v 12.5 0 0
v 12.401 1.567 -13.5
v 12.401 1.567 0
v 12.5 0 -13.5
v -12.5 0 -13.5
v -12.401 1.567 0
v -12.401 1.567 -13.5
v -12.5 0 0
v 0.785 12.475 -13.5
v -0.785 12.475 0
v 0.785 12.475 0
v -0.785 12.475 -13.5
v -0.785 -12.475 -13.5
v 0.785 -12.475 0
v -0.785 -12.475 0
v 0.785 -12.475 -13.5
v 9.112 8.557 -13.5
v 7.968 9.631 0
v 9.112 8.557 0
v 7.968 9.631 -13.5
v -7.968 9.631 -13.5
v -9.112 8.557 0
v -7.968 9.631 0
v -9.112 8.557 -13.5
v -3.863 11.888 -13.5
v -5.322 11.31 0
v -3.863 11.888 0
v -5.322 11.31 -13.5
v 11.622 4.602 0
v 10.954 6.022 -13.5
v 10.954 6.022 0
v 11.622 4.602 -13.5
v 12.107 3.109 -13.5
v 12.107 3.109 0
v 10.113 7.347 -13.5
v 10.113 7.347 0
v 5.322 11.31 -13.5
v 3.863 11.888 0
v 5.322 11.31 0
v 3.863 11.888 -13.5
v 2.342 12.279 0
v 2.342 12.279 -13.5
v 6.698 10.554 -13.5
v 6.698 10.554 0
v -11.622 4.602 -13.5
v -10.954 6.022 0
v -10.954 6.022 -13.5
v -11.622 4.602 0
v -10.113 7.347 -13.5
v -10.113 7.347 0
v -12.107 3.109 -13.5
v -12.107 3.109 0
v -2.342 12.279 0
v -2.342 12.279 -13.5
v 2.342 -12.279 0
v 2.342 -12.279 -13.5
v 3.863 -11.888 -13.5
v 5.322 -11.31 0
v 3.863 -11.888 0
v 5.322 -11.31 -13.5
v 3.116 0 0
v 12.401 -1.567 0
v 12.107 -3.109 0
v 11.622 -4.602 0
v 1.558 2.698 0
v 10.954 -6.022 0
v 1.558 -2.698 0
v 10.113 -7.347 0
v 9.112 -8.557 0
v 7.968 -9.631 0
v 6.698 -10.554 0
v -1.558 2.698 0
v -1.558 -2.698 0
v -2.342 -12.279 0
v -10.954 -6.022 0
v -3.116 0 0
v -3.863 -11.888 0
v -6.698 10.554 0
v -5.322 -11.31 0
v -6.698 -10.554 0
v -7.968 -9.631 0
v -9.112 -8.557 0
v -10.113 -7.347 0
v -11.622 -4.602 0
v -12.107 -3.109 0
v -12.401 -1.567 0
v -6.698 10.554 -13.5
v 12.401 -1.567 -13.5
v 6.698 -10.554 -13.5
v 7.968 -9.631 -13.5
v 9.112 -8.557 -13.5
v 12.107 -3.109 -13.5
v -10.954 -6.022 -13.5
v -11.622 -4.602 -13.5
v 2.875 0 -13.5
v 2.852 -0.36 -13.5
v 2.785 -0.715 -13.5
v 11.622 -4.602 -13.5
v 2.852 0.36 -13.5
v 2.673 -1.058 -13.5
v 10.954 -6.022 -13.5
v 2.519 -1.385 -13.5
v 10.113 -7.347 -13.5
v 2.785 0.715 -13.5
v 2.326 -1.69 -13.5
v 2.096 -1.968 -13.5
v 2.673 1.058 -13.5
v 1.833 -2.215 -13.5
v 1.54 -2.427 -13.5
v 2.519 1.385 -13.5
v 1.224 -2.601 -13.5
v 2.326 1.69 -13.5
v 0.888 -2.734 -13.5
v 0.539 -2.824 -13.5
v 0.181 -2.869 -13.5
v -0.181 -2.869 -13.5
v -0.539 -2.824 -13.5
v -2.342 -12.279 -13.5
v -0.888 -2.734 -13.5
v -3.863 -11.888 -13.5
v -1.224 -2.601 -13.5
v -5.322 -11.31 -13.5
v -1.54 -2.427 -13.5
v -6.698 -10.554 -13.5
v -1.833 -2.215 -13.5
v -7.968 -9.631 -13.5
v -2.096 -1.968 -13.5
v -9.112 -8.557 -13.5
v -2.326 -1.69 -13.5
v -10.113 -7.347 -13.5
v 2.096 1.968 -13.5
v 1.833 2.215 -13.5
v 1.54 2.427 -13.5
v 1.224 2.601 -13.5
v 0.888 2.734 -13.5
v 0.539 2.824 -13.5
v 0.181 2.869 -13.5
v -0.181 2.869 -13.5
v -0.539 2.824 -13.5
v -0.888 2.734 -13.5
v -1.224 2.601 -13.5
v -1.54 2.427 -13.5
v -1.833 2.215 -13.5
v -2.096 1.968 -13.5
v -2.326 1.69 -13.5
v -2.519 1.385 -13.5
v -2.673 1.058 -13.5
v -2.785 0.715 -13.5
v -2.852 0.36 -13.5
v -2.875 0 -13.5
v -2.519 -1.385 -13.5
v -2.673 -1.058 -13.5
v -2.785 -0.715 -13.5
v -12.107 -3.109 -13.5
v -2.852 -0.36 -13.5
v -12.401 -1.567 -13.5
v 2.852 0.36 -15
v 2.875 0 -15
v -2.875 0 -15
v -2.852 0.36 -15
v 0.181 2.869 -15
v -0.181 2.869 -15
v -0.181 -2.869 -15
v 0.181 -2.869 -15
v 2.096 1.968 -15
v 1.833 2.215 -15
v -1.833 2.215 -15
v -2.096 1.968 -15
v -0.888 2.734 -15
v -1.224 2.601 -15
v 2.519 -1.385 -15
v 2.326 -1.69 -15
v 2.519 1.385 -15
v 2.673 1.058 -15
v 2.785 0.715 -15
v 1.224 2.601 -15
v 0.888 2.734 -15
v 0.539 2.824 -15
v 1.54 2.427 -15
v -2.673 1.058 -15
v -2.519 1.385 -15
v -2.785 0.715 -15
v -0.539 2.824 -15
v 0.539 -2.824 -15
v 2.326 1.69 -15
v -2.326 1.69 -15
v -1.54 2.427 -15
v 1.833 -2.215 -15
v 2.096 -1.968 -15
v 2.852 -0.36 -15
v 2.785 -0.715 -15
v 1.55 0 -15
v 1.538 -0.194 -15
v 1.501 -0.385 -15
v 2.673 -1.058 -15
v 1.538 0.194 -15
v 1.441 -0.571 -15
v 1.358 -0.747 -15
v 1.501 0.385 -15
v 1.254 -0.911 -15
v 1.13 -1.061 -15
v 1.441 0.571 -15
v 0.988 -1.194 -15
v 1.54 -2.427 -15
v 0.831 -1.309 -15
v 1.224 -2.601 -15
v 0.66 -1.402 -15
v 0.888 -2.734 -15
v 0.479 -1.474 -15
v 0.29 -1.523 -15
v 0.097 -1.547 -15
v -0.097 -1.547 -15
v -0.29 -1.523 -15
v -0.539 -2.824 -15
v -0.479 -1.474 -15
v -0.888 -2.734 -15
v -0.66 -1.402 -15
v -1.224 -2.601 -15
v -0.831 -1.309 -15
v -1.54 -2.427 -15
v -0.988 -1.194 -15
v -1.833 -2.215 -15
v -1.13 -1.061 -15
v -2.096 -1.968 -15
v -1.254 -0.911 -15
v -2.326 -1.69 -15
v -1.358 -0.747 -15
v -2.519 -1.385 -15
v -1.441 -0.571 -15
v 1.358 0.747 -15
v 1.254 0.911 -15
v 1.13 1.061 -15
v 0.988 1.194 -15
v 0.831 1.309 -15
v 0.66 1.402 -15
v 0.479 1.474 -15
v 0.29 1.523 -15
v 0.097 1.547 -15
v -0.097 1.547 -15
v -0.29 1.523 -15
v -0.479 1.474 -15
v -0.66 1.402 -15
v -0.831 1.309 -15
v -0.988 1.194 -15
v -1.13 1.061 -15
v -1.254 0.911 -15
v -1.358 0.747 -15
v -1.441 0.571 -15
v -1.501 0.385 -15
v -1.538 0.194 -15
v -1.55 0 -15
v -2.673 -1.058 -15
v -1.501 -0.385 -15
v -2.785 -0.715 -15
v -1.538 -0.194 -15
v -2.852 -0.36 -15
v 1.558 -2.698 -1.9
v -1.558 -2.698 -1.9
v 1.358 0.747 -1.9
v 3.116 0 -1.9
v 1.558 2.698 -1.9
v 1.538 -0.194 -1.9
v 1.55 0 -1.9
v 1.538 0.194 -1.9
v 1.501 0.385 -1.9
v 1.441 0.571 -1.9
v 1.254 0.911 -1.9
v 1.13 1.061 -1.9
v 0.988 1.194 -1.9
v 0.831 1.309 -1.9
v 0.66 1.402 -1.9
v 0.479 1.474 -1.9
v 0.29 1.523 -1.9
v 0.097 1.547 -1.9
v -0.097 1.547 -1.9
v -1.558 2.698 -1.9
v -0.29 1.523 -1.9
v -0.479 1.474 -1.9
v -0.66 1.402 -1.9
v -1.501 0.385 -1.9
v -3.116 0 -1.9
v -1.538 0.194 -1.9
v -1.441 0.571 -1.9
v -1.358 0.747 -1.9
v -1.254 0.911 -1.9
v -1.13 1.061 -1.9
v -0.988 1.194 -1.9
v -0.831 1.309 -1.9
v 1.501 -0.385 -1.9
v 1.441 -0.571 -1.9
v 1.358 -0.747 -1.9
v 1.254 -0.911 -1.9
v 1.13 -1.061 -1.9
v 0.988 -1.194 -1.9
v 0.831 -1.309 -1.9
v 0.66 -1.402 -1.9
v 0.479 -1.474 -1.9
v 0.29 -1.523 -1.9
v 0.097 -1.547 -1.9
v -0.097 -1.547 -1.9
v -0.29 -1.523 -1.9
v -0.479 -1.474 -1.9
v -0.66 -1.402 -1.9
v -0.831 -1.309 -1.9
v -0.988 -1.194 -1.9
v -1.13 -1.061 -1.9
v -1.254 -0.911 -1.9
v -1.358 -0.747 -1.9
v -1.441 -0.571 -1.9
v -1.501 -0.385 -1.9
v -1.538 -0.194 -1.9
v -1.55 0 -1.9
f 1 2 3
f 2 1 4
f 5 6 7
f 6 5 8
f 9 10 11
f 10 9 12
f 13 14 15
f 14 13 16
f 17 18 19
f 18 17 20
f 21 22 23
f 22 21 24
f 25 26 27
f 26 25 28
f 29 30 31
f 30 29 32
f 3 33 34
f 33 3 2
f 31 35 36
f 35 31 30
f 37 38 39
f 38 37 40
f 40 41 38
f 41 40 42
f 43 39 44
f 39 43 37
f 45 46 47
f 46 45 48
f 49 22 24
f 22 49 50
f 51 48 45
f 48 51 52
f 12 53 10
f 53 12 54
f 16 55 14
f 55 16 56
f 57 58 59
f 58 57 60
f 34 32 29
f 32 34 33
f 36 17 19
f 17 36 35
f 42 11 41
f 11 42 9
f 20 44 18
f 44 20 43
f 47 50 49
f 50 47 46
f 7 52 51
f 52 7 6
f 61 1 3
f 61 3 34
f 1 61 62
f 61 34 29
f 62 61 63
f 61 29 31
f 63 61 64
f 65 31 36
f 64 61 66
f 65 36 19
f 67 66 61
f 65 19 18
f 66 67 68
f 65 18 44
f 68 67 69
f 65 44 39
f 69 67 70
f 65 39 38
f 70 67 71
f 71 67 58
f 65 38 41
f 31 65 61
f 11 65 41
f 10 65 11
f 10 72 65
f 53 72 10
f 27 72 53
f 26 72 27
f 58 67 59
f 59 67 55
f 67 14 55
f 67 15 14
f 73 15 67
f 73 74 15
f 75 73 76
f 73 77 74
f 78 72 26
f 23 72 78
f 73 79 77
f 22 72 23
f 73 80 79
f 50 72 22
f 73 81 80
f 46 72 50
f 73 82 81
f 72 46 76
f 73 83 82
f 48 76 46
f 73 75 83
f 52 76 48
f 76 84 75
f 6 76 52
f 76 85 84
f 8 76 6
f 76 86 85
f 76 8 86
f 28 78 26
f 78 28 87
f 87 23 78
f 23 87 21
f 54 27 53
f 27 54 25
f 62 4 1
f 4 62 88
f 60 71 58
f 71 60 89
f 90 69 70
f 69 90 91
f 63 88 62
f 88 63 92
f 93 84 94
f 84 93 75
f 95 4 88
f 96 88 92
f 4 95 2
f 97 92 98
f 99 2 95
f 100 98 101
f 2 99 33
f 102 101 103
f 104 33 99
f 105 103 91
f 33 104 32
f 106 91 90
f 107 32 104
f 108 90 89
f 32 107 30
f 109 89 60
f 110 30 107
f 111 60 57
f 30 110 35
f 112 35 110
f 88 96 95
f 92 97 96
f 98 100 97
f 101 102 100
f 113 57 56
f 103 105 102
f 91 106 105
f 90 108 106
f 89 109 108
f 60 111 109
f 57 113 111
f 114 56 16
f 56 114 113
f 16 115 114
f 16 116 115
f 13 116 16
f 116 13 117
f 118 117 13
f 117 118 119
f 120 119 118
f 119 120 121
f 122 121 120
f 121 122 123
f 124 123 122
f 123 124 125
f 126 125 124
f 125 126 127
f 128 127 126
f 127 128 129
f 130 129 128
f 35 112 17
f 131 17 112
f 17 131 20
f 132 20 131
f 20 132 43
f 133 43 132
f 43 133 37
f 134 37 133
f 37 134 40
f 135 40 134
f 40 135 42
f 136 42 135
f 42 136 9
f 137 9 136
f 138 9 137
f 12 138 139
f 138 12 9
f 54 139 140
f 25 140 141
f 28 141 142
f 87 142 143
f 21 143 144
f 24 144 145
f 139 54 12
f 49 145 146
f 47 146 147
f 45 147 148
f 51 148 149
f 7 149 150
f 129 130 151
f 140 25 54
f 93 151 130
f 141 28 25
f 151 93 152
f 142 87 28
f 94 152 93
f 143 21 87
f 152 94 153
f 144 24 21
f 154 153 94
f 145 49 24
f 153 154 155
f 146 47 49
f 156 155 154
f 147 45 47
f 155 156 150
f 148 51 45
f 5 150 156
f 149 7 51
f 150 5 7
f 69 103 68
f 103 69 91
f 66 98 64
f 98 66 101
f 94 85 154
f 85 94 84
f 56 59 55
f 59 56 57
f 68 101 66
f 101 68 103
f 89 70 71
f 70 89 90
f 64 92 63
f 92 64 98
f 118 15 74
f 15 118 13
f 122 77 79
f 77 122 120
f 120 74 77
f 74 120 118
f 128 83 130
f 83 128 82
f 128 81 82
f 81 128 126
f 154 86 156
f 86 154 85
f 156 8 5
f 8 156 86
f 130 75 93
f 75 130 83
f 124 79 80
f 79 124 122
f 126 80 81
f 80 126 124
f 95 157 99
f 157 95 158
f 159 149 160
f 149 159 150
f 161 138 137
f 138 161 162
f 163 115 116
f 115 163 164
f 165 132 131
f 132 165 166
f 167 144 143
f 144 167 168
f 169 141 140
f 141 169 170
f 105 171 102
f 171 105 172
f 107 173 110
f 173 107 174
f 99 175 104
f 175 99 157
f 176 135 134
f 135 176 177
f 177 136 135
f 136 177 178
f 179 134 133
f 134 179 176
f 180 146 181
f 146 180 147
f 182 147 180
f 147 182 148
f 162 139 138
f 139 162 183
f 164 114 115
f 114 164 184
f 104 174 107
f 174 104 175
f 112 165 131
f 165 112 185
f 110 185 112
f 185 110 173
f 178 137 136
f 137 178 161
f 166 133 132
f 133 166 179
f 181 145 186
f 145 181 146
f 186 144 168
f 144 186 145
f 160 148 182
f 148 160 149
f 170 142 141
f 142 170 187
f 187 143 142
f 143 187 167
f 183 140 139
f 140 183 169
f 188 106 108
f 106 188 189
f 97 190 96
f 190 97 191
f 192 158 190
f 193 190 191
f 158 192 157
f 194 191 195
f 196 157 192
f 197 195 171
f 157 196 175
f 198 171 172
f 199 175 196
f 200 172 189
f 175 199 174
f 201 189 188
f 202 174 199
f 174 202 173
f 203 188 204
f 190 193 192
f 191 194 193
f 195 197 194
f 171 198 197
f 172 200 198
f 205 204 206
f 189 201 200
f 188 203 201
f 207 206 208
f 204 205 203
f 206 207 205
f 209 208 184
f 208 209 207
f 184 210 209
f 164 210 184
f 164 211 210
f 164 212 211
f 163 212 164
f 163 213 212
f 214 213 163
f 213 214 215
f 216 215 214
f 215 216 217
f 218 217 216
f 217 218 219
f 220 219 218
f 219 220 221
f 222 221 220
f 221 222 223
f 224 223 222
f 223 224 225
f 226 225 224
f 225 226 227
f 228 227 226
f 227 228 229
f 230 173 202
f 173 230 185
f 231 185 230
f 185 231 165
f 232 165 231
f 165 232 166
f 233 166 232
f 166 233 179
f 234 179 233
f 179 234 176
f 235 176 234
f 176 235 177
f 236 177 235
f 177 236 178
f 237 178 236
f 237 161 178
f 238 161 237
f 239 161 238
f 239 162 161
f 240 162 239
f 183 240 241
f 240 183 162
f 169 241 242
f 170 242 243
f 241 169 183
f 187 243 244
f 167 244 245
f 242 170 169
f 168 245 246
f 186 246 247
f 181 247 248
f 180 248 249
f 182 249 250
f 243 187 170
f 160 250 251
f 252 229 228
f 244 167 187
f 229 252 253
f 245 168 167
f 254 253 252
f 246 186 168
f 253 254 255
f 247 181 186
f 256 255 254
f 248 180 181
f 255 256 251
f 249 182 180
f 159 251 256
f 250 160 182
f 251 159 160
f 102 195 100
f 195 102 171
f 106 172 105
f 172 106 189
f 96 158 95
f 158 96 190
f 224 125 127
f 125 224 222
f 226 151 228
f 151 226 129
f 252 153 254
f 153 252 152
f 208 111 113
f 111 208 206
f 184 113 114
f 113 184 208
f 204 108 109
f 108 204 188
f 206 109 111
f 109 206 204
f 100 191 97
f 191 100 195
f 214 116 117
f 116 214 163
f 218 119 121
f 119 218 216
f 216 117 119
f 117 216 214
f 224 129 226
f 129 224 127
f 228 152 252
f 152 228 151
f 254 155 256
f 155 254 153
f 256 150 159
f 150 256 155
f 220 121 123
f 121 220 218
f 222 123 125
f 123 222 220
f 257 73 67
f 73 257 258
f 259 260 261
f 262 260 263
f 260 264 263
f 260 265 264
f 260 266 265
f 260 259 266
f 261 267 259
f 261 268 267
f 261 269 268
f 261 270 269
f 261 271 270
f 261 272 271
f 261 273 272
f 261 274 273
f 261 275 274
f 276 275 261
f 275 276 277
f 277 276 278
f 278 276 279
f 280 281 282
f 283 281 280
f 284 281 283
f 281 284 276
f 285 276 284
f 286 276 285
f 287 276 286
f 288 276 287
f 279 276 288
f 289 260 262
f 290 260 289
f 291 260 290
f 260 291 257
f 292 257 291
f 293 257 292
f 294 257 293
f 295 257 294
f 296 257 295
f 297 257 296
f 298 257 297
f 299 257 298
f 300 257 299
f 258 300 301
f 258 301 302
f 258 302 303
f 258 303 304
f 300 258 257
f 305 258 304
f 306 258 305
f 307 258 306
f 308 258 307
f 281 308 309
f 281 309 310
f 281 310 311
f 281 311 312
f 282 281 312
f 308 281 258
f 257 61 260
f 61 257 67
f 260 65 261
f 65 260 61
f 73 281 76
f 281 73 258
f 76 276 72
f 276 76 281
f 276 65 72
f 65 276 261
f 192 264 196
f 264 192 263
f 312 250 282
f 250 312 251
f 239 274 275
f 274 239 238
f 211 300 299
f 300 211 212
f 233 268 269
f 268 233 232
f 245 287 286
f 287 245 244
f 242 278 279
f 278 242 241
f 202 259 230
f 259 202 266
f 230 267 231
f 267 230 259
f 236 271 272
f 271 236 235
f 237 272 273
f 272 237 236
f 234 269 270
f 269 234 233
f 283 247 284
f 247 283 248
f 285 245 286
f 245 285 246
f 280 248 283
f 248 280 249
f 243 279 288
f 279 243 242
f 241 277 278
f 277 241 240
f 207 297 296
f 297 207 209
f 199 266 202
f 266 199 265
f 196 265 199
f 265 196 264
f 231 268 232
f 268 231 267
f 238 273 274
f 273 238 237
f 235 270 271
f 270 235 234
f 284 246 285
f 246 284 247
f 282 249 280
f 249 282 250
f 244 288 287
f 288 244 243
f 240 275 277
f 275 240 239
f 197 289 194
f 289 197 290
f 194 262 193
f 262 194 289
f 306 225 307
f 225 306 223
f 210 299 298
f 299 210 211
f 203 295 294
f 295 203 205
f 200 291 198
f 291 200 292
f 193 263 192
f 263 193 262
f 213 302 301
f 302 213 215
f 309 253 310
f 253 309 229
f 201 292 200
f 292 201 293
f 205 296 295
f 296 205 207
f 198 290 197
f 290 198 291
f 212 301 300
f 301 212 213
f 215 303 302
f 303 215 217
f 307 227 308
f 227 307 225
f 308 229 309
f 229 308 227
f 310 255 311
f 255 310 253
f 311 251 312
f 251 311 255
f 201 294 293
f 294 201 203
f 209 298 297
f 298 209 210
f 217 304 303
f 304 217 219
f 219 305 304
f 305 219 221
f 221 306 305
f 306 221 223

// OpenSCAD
$fn = 50;


difference() {
	union() {
		translate(v = [0, 0, -13.5000000000]) {
			cylinder(h = 13.5000000000, r = 12.5000000000);
		}
		#translate(v = [0, 0, -15.0000000000]) {
			cylinder(h = 15, r = 2.8750000000);
		}
	}
	union() {
		translate(v = [0, 0, 0]) {
			rotate(a = [0, 0, 0]) {
				difference() {
					union() {
						translate(v = [0, 0, -1.9000000000]) {
							linear_extrude(height = 1.9000000000) {
								polygon(points = [[3.1158000000, 0.0000000000], [1.5579000000, 2.6983619531], [-1.5579000000, 2.6983619531], [-3.1158000000, 0.0000000000], [-1.5579000000, -2.6983619531], [1.5579000000, -2.6983619531]]);
							}
						}
					}
					union();
				}
			}
		}
		#translate(v = [0, 0, -100.0000000000]) {
			cylinder(h = 200, r = 1.5500000000);
		}
	}
}
